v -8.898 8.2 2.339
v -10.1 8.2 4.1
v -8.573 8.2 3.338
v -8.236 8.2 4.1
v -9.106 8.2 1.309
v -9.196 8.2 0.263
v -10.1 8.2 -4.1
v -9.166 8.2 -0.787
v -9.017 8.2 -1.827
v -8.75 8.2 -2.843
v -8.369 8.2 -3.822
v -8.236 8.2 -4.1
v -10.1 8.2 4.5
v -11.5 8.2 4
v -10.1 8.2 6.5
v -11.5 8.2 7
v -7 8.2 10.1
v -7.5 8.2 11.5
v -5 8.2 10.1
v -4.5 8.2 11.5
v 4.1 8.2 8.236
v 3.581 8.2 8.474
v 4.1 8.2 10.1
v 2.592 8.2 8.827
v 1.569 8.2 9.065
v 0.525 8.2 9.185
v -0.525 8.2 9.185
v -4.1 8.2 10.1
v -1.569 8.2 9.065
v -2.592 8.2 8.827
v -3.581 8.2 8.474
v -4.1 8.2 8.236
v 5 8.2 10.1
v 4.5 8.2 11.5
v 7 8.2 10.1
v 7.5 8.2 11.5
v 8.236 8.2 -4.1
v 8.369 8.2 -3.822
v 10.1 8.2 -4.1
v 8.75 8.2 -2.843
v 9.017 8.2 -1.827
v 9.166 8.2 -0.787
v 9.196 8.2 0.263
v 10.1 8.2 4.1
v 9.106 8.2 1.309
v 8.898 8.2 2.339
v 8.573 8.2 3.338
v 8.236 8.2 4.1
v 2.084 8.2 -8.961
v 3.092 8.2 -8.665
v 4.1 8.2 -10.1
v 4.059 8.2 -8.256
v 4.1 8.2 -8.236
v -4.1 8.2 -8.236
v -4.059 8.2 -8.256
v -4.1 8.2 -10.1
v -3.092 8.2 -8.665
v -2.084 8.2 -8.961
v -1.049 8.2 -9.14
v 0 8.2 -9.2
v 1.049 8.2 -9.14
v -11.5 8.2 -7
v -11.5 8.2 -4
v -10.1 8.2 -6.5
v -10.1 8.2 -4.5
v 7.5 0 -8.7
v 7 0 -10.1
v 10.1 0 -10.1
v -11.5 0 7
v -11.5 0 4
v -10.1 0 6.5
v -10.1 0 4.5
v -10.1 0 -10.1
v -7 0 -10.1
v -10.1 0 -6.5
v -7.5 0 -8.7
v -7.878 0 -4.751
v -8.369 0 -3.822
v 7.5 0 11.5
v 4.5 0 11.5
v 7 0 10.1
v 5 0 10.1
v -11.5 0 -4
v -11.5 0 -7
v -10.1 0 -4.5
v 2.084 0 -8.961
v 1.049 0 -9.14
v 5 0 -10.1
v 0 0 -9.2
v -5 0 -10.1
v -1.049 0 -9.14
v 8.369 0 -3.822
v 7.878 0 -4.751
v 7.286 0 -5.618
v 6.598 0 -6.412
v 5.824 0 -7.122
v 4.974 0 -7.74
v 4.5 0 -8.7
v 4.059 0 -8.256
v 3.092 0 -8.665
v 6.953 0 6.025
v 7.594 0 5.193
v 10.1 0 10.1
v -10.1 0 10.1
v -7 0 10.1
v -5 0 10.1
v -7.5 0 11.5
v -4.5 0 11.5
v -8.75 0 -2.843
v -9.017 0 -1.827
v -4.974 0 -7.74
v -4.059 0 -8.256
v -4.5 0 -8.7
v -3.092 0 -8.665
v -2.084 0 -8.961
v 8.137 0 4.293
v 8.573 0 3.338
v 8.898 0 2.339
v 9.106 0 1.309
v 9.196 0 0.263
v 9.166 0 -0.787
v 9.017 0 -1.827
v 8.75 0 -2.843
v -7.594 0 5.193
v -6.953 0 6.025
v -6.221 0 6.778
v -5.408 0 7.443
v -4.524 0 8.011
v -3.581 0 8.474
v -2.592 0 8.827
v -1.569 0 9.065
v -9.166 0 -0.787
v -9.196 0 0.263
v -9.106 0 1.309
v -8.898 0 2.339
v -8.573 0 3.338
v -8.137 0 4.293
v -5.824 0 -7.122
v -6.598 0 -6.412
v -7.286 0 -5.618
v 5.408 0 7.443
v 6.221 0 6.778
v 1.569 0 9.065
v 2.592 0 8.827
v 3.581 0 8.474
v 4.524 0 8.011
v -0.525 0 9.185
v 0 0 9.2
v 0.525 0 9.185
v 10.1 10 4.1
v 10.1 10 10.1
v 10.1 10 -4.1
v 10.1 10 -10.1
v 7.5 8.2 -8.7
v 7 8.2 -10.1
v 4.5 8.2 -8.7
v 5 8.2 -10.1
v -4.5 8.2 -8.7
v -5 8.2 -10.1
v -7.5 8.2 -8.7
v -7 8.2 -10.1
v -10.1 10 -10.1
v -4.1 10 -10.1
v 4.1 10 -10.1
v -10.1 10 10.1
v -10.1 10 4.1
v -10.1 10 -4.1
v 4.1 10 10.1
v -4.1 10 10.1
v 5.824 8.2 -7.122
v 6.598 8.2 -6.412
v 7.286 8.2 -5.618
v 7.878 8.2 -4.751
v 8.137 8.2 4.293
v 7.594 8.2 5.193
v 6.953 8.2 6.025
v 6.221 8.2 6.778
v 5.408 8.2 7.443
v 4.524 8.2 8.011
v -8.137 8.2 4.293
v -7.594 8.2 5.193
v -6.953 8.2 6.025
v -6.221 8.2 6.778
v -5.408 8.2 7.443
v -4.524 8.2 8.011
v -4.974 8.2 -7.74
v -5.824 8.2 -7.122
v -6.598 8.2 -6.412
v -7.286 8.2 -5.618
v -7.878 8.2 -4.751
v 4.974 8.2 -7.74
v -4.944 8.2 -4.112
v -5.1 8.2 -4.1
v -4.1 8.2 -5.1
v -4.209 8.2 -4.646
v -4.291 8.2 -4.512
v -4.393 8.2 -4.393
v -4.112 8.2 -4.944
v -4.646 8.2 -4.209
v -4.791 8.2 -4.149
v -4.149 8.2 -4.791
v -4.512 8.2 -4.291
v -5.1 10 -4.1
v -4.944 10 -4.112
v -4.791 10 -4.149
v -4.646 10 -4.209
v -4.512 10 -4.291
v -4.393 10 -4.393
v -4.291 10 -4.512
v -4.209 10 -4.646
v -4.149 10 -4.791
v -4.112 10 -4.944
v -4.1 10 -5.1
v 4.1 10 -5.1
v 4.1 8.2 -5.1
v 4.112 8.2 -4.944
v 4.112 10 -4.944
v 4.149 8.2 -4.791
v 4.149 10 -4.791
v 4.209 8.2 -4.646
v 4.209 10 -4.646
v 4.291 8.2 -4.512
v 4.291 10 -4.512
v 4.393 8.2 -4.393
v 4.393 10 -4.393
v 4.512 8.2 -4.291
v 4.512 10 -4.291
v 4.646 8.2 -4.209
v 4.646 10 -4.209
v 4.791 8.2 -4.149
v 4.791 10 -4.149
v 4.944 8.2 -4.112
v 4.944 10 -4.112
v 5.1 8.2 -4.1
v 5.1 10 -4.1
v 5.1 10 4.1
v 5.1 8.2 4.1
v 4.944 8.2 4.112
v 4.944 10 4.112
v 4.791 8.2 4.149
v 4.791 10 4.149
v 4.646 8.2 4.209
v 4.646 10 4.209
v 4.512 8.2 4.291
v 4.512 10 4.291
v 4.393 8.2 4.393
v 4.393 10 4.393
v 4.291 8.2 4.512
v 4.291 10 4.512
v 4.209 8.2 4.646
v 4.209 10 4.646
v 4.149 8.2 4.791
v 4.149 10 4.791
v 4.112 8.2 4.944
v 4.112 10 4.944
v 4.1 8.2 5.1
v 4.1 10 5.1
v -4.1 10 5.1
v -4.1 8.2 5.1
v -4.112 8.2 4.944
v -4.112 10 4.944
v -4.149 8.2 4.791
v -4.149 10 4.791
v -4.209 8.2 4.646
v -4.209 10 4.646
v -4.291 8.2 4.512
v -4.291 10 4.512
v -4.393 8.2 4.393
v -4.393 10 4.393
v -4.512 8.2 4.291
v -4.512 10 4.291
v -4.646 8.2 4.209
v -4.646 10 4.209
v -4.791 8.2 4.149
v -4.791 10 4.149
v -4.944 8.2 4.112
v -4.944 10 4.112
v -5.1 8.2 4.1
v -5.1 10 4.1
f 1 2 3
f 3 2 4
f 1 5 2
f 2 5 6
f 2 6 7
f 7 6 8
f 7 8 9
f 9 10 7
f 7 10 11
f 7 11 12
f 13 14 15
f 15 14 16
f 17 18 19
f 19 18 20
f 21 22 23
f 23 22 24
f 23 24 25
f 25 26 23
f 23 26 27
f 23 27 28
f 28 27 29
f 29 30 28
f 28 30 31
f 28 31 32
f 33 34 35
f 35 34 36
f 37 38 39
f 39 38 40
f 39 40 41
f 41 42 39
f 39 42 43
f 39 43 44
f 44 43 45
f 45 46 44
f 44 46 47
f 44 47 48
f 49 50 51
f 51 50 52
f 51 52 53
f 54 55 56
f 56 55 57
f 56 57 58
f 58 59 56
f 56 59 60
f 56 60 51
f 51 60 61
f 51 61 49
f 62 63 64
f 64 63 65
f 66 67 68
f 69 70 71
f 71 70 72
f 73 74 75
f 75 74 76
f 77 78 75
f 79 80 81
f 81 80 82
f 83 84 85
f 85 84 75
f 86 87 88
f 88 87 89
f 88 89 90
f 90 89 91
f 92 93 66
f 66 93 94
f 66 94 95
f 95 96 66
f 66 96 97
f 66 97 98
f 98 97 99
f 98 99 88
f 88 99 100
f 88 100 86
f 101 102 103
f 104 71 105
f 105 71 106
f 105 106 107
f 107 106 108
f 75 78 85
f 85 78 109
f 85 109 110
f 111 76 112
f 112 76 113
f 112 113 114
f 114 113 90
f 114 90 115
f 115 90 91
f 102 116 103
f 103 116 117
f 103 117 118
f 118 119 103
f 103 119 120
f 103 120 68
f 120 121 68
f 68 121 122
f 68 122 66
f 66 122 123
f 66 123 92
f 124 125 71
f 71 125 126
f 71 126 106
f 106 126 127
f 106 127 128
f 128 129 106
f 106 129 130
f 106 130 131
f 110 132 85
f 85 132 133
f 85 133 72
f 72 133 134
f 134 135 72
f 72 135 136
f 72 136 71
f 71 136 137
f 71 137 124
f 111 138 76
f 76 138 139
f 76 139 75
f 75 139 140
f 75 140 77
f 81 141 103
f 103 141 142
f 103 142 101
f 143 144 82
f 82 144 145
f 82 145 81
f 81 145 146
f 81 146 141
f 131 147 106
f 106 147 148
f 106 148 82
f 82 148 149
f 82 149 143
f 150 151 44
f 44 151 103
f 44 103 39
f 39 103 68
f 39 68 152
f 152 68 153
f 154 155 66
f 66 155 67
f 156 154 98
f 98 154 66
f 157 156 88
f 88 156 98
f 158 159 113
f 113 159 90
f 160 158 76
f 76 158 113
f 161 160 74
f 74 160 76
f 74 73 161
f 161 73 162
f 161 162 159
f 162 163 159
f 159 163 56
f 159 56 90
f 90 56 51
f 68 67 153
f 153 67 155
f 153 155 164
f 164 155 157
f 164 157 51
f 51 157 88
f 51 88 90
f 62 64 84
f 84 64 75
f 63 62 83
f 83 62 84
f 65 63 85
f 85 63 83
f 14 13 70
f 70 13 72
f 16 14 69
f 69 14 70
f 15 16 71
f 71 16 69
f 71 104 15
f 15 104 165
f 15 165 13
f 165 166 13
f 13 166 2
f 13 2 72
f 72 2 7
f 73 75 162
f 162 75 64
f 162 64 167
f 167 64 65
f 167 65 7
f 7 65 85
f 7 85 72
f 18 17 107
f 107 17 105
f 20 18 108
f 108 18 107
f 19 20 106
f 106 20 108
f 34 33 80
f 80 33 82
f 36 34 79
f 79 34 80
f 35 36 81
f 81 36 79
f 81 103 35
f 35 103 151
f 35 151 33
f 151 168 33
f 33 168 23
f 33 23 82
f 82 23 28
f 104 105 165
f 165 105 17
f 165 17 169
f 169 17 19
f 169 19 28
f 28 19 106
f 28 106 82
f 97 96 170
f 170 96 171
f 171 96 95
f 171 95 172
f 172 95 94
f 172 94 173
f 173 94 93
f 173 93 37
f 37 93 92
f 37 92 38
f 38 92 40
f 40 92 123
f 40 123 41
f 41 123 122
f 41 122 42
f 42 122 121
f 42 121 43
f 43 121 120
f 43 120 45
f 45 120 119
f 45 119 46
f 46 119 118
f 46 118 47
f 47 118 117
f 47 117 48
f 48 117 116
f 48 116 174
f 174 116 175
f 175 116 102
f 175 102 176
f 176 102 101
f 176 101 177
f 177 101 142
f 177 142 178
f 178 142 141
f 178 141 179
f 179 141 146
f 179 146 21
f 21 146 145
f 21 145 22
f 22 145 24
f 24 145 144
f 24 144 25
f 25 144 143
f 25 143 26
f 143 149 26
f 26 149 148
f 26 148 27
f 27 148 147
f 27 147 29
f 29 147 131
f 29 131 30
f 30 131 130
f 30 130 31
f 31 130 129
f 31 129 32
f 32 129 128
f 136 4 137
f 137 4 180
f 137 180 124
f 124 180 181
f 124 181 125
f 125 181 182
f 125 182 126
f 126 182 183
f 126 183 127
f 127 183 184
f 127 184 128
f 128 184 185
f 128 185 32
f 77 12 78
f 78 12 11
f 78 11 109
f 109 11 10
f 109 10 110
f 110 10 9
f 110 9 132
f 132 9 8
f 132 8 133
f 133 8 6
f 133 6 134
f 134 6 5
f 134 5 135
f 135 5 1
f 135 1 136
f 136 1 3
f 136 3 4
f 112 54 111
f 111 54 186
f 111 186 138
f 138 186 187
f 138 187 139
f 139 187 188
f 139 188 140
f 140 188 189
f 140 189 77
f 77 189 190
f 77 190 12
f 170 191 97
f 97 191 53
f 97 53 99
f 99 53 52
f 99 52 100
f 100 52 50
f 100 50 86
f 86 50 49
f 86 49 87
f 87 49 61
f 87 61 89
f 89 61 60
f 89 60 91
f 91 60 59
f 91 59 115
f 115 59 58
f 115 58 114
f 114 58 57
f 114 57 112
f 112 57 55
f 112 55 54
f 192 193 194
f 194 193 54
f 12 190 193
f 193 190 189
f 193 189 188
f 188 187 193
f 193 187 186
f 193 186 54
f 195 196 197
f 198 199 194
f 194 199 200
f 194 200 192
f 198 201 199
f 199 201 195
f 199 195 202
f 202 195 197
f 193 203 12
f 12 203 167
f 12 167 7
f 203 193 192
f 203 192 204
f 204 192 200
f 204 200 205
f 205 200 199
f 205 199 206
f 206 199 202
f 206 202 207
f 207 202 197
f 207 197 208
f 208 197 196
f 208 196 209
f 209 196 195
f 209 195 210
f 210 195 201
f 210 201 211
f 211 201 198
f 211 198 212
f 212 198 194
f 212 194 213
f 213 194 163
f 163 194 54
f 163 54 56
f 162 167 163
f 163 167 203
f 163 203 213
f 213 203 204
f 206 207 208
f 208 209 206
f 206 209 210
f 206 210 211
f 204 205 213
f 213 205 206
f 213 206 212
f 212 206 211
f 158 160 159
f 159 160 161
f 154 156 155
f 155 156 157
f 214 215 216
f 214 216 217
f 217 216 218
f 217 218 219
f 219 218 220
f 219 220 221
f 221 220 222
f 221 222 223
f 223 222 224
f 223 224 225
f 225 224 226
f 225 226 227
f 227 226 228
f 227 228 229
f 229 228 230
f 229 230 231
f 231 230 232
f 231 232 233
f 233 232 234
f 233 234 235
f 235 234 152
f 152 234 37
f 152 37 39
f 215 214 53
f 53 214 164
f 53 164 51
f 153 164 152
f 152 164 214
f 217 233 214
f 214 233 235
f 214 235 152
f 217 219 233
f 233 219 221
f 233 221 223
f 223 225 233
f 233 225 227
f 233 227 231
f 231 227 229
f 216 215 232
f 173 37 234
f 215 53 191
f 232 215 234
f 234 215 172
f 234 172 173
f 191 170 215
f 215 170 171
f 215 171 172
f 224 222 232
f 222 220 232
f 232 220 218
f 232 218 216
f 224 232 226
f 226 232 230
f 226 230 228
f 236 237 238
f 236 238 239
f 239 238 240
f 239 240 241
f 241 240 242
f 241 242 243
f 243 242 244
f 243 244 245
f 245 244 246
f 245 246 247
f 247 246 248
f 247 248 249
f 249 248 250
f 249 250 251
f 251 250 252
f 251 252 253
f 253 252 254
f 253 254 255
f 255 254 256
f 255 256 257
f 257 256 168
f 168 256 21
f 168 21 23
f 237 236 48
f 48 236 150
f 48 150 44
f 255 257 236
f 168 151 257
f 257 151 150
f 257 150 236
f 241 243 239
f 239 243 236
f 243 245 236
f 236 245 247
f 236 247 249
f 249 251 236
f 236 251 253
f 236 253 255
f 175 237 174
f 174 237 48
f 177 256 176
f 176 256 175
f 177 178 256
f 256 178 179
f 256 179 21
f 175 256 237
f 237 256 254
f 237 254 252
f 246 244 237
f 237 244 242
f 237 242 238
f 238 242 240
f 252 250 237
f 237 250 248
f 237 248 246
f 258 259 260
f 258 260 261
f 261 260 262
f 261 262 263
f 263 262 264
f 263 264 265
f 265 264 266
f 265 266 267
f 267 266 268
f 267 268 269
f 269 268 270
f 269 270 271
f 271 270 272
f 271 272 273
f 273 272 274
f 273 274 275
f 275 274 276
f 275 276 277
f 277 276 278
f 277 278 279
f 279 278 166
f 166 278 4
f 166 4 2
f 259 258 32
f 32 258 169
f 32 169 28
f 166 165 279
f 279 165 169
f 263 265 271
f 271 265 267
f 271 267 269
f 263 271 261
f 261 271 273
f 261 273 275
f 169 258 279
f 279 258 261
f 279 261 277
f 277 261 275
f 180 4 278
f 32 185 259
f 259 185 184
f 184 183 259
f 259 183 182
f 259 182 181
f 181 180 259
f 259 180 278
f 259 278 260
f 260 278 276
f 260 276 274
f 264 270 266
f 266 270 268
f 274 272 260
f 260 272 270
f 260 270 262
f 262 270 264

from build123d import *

# Parameters (mm, degrees)
SKETCH1_R           = 9.2
BOSS_EXTRUDE1_DEPTH = 8.2
BOSS_EXTRUDE2_DEPTH = 1.8


with BuildPart() as part:
    # Sketch1 → Boss-Extrude1 (new body)
    with BuildSketch(Plane(origin=(0, 0, 0), x_dir=(1, 0, 0), z_dir=(0, 1, 0))):
        Polygon((-10.1, 10.1), (-7, 10.1), (-7.5, 8.7), (-4.5, 8.7), (-5, 10.1), (5, 10.1), (4.5, 8.7), (7.5, 8.7), (7, 10.1), (10.1, 10.1), (10.1, 6.5), (10.1, 4.5), (10.1, -4.5), (10.1, -6.5), (10.1, -10.1), (7, -10.1), (7.5, -11.5), (4.5, -11.5), (5, -10.1), (-5, -10.1), (-4.5, -11.5), (-7.5, -11.5), (-7, -10.1), (-10.1, -10.1), (-10.1, -6.5), (-11.5, -7), (-11.5, -4), (-10.1, -4.5), (-10.1, 4.5), (-11.5, 4), (-11.5, 7), (-10.1, 6.5), align=None)
        with Locations(Location((0, 0, 0), (0, 0, 270))):
            Circle(SKETCH1_R, mode=Mode.SUBTRACT)
    extrude(amount=BOSS_EXTRUDE1_DEPTH)

    # Sketch2 → Boss-Extrude2 (add)
    with BuildSketch(Plane(origin=(0, 8.2, 0), x_dir=(1, 0, 0), z_dir=(0, 1, 0))):
        with BuildLine():
            Line((-4.1, 10.1), (-4.1, 5.1))
            ThreePointArc((-4.1, 5.1), (-4.392893219, 4.392893219), (-5.1, 4.1))
            Line((-5.1, 4.1), (-10.1, 4.1))
            Line((-10.1, 4.1), (-10.1, 10.1))
            Line((-10.1, 10.1), (-4.1, 10.1))
        make_face()
        with BuildLine():
            Line((10.1, 4.1), (10.1, 10.1))
            Line((10.1, 10.1), (4.1, 10.1))
            Line((4.1, 10.1), (4.1, 5.1))
            ThreePointArc((4.1, 5.1), (4.392893219, 4.392893219), (5.1, 4.1))
            Line((5.1, 4.1), (10.1, 4.1))
        make_face()
        with BuildLine():
            Line((4.1, -10.1), (4.1, -5.1))
            ThreePointArc((4.1, -5.1), (4.392893219, -4.392893219), (5.1, -4.1))
            Line((5.1, -4.1), (10.1, -4.1))
            Line((10.1, -4.1), (10.1, -10.1))
            Line((10.1, -10.1), (4.1, -10.1))
        make_face()
        with BuildLine():
            Line((-10.1, -4.1), (-10.1, -10.1))
            Line((-10.1, -10.1), (-4.1, -10.1))
            Line((-4.1, -10.1), (-4.1, -5.1))
            ThreePointArc((-4.1, -5.1), (-4.392893219, -4.392893219), (-5.1, -4.1))
            Line((-5.1, -4.1), (-10.1, -4.1))
        make_face()
    extrude(amount=BOSS_EXTRUDE2_DEPTH)


solid = part.part
